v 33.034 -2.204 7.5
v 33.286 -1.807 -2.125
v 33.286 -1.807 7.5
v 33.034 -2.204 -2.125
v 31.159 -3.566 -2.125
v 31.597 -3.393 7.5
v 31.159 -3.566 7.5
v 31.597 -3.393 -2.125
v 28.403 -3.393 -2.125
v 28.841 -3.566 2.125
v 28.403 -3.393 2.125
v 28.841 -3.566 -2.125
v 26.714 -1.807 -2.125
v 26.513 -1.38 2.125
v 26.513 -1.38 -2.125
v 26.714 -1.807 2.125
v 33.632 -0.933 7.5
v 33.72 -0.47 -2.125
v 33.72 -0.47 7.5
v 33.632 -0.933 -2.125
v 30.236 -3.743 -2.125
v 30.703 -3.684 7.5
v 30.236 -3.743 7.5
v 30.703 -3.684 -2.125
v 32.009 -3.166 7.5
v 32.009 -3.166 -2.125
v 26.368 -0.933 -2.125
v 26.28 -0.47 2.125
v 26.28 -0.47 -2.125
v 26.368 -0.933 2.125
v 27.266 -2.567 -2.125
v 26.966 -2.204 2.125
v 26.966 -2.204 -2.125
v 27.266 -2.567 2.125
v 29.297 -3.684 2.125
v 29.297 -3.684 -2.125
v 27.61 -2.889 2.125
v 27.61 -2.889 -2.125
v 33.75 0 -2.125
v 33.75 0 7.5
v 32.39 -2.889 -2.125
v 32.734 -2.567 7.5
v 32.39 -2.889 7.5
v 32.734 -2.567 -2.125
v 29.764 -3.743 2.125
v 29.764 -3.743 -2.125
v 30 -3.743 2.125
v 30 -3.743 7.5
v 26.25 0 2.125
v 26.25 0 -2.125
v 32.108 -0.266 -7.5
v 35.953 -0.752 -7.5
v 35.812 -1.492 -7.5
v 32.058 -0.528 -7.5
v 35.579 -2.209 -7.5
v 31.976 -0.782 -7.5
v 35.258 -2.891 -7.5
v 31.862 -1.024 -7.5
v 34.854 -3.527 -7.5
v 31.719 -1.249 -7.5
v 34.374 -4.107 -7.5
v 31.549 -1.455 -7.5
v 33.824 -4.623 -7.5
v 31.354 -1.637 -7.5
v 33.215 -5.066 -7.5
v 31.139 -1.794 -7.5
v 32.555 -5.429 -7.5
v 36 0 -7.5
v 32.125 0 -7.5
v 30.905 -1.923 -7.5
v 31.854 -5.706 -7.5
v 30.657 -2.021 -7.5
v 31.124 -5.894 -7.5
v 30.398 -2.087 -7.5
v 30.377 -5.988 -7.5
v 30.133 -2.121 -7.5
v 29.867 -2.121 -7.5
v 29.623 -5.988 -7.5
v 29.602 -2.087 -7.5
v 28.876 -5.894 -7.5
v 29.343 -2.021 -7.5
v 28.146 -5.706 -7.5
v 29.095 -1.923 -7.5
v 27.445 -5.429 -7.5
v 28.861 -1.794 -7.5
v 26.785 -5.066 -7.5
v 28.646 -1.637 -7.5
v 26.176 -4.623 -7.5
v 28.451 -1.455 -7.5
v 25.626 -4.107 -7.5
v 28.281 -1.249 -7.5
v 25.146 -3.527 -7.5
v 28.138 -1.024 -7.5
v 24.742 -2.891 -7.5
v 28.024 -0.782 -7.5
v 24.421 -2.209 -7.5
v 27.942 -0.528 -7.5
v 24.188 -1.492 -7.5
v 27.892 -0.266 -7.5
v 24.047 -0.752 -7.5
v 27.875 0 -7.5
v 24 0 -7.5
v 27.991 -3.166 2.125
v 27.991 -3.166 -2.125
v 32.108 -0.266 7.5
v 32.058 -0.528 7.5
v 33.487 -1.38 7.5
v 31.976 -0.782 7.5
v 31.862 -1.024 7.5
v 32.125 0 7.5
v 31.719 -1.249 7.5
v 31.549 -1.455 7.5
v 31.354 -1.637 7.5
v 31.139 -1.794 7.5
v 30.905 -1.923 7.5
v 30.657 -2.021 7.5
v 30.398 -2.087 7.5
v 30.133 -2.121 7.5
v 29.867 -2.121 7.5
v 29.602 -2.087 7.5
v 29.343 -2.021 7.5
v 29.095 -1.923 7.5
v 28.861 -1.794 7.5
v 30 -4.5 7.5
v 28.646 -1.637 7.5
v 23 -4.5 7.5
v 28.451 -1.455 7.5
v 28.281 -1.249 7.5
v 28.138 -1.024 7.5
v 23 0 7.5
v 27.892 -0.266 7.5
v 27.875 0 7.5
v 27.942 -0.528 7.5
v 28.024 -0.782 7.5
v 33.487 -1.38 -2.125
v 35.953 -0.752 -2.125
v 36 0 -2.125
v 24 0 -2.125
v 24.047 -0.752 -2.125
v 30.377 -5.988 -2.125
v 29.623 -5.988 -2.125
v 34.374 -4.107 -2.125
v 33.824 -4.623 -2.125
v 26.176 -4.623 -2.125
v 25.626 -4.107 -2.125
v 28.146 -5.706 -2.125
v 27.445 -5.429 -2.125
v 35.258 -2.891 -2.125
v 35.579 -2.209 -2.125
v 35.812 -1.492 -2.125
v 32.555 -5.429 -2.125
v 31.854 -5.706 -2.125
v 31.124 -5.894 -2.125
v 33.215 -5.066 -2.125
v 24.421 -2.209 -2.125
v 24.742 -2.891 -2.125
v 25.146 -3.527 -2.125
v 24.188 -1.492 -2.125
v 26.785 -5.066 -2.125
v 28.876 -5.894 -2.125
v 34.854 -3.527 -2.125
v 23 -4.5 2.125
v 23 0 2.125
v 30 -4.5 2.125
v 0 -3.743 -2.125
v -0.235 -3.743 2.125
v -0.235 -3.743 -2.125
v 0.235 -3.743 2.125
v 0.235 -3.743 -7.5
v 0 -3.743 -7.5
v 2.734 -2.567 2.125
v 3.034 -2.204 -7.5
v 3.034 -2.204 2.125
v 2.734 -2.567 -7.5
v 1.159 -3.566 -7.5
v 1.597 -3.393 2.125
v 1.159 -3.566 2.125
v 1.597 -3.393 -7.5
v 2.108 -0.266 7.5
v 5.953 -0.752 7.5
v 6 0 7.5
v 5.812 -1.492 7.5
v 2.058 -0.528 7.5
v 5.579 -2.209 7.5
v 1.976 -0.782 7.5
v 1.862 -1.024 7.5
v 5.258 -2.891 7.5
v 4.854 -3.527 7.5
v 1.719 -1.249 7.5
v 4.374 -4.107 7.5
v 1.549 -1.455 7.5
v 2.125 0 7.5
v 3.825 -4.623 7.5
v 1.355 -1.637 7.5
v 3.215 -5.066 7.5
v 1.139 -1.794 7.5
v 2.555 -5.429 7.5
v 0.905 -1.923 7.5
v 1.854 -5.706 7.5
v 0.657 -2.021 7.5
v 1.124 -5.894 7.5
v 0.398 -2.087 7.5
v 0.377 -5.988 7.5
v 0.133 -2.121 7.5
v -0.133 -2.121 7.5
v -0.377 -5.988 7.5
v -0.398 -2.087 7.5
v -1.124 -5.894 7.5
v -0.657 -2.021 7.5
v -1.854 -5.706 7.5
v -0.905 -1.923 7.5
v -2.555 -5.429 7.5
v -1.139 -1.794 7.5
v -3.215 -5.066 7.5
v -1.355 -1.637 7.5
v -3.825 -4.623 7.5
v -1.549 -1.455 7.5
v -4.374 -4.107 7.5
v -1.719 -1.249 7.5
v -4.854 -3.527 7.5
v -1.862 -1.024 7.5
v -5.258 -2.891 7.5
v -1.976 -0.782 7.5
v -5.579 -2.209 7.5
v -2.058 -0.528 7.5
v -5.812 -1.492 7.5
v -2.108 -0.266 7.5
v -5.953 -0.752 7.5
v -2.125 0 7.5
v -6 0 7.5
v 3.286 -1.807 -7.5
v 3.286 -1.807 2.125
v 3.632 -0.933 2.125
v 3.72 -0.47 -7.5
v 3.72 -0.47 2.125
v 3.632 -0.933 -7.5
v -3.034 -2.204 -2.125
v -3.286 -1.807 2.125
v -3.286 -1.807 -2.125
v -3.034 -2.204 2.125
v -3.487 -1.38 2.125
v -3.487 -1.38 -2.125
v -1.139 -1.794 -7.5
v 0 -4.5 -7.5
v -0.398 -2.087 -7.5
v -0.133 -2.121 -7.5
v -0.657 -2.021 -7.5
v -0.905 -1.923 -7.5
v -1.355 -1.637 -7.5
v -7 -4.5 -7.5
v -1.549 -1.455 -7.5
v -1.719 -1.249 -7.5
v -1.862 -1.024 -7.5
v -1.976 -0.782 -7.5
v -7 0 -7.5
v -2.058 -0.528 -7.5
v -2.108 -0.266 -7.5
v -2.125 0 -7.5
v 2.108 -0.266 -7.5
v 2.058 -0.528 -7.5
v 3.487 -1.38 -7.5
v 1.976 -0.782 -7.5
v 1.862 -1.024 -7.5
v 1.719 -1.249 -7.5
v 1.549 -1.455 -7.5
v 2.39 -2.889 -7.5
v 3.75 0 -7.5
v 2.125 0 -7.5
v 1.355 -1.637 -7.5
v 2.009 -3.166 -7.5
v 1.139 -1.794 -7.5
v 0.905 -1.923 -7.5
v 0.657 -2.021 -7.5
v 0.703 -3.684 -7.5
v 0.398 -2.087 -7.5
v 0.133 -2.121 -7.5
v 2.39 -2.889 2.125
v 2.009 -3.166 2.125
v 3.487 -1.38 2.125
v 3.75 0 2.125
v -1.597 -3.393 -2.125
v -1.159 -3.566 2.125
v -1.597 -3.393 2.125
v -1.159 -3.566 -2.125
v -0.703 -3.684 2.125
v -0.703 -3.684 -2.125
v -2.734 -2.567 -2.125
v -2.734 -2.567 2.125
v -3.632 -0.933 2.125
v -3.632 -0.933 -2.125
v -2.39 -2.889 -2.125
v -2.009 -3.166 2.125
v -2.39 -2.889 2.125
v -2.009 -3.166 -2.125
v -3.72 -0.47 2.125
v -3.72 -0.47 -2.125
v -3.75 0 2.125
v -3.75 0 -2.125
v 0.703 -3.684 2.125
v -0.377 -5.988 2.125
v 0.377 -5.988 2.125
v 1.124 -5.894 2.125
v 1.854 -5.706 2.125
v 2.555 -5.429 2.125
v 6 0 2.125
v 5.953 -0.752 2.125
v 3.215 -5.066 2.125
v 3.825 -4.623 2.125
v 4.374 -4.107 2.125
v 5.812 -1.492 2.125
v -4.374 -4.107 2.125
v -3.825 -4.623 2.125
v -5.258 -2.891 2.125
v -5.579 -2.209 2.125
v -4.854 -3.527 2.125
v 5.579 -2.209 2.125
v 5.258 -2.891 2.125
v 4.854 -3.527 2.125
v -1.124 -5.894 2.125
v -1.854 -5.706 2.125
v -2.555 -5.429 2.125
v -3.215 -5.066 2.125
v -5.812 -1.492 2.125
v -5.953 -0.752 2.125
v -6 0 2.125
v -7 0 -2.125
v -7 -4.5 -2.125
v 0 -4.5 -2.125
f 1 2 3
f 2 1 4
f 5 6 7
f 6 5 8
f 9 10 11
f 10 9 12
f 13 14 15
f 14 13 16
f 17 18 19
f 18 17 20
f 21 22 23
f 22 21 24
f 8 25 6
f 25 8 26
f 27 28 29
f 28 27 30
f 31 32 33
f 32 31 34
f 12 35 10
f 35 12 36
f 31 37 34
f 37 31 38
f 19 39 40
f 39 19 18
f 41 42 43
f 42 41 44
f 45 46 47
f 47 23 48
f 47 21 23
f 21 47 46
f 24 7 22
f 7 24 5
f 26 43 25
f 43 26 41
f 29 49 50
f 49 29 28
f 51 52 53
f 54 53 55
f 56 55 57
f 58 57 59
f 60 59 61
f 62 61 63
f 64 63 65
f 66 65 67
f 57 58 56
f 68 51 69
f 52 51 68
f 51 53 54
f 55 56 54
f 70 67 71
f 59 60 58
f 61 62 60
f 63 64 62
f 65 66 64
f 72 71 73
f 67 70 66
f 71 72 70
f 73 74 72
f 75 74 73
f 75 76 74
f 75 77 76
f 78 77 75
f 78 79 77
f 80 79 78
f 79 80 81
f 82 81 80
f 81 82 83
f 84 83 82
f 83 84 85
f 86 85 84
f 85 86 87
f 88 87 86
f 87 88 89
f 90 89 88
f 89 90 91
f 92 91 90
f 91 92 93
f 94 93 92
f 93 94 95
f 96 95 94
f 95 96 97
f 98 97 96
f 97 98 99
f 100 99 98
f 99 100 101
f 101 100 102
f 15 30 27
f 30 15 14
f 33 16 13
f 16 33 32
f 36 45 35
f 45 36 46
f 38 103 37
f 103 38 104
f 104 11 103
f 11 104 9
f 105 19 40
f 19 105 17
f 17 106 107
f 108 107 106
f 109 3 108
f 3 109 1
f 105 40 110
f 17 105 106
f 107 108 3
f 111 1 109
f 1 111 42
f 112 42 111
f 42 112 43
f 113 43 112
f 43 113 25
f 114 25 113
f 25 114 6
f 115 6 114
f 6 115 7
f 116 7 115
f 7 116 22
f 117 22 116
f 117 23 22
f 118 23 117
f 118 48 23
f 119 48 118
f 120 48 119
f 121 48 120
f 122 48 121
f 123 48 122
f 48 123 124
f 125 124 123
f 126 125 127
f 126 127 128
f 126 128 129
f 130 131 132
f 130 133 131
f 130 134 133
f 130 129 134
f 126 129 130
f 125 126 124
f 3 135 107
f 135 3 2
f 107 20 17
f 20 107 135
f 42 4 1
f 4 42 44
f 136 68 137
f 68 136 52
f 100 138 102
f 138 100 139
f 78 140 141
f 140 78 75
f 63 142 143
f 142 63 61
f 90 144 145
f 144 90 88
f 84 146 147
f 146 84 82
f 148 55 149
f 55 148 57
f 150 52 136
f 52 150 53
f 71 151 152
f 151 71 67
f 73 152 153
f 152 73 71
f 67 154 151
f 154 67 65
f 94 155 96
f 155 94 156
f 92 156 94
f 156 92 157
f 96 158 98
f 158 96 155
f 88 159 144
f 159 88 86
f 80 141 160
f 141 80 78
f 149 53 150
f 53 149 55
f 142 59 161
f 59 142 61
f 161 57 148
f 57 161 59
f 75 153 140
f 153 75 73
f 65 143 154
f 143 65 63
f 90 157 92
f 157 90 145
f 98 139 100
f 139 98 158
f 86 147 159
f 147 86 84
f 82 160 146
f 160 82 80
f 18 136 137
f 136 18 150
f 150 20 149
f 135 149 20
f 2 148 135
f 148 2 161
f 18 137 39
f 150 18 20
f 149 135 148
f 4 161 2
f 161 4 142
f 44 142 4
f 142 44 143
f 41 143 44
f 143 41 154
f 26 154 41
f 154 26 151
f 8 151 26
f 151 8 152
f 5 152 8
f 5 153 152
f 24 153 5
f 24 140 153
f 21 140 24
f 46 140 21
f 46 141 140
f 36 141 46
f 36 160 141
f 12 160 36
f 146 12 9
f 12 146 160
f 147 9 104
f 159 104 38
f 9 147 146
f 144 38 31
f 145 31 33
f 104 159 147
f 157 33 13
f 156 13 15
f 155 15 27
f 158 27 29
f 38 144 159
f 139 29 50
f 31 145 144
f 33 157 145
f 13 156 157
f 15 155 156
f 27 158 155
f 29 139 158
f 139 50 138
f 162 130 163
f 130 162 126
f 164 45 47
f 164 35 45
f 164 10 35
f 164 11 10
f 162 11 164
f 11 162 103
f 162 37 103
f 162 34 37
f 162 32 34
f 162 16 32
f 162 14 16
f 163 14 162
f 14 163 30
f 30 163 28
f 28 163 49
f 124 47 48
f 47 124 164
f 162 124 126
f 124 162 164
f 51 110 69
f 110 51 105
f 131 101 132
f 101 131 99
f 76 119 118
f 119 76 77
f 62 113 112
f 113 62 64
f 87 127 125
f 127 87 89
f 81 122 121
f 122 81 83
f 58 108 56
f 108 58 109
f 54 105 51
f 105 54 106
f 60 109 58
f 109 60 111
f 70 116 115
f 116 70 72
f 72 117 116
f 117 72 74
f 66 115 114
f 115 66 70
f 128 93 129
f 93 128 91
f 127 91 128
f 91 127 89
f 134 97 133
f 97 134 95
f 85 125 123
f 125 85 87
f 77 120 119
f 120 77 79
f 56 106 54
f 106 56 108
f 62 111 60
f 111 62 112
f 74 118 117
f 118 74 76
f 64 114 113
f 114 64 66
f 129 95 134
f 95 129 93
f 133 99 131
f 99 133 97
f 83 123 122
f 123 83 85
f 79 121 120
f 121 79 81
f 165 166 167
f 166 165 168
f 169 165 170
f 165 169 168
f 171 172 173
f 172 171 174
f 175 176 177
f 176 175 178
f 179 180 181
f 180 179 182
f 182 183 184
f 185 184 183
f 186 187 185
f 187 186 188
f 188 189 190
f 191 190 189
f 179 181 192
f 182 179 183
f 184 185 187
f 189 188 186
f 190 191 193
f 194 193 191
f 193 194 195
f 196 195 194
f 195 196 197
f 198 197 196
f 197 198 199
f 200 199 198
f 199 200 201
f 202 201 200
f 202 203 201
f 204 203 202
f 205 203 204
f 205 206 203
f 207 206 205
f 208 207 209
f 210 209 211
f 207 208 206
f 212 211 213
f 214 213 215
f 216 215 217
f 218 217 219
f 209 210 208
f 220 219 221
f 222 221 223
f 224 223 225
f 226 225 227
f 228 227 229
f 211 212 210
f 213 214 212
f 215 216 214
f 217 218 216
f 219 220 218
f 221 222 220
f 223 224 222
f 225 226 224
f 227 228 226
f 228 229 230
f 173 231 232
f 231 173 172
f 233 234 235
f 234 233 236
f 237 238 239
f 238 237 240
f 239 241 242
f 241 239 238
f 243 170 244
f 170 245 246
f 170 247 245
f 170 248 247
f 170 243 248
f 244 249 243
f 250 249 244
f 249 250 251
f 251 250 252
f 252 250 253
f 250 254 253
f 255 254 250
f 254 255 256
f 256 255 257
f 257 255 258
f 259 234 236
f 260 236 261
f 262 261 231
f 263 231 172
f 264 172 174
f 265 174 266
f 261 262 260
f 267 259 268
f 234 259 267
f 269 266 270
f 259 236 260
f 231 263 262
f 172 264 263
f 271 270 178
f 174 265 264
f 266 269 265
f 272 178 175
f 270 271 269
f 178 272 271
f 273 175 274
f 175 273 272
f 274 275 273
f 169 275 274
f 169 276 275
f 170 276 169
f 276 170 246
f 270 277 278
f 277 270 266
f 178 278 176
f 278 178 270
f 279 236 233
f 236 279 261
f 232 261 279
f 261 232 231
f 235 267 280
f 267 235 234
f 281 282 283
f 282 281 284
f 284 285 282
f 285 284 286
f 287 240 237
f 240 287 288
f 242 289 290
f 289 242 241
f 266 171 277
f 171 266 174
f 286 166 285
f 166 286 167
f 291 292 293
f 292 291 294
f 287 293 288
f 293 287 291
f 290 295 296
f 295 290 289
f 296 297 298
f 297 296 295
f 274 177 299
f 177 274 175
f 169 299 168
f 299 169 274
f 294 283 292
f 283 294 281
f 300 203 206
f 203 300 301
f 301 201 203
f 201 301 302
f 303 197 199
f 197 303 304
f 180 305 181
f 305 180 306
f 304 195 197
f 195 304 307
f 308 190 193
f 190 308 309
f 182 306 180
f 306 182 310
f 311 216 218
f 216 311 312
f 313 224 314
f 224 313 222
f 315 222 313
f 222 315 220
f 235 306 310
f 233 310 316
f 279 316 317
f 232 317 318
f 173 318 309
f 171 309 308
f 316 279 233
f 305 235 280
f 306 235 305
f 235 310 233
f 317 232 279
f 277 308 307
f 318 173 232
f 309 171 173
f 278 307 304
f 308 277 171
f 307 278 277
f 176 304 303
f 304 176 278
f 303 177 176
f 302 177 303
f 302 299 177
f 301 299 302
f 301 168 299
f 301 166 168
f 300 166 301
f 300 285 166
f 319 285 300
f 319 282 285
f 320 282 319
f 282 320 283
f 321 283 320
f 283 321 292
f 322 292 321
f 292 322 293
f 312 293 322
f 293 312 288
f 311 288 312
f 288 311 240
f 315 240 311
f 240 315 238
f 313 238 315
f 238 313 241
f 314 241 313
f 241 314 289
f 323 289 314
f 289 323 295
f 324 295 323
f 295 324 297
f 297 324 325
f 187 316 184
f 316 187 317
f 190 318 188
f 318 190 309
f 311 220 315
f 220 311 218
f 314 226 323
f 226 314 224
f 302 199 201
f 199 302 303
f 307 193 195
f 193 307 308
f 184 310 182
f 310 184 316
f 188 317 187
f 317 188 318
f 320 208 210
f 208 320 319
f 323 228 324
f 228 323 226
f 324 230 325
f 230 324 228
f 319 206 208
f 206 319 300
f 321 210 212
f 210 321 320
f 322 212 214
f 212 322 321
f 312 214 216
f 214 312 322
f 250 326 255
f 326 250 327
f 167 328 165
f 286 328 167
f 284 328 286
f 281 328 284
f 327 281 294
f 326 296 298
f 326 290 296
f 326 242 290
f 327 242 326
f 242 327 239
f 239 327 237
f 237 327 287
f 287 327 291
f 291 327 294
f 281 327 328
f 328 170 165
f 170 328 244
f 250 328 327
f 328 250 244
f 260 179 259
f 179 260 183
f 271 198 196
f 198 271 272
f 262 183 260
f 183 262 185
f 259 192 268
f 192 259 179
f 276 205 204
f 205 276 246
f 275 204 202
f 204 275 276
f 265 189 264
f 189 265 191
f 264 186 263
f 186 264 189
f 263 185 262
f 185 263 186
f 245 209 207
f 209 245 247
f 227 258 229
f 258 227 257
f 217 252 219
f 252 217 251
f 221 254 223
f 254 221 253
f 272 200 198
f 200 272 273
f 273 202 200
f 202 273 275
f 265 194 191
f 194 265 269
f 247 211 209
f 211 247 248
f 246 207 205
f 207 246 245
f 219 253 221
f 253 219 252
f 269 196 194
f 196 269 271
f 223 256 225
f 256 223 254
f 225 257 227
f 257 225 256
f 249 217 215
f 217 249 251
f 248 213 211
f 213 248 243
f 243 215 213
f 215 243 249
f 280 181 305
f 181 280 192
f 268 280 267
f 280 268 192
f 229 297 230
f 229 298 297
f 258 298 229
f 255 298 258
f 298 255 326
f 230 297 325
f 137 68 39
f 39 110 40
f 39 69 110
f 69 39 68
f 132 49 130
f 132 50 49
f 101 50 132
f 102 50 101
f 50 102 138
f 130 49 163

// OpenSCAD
$fn = 50;


difference() {
	union() {
		translate(v = [30, 0, 0]) {
			rotate(a = [180, 0, 0]) {
				difference() {
					union() {
						translate(v = [0, 0, -7.5000000000]) {
							cylinder(h = 15, r = 3.7500000000);
						}
						translate(v = [0, 0, 2.1250000000]) {
							cylinder(h = 5.3750000000, r = 6.0000000000);
						}
						translate(v = [-7.0000000000, -4.5000000000, -7.5000000000]) {
							cube(size = [7.0000000000, 9, 5.3750000000]);
						}
					}
					union() {
						translate(v = [0, 0, -7.5000000000]) {
							cylinder(h = 15, r = 2.1250000000);
						}
					}
				}
			}
		}
		translate(v = [0, 0, -7.5000000000]) {
			cylinder(h = 15, r = 3.7500000000);
		}
		translate(v = [0, 0, 2.1250000000]) {
			cylinder(h = 5.3750000000, r = 6.0000000000);
		}
		translate(v = [-7.0000000000, -4.5000000000, -7.5000000000]) {
			cube(size = [7.0000000000, 9, 5.3750000000]);
		}
	}
	union() {
		translate(v = [0, 0, -7.5000000000]) {
			cylinder(h = 15, r = 2.1250000000);
		}
		translate(v = [-250.0000000000, 0, -250.0000000000]) {
			cube(size = [500, 500, 500]);
		}
		translate(v = [-250.0000000000, 0, -250.0000000000]) {
			cube(size = [500, 500, 500]);
		}
		translate(v = [-250.0000000000, 0, -250.0000000000]) {
			cube(size = [500, 500, 500]);
		}
	}
}
